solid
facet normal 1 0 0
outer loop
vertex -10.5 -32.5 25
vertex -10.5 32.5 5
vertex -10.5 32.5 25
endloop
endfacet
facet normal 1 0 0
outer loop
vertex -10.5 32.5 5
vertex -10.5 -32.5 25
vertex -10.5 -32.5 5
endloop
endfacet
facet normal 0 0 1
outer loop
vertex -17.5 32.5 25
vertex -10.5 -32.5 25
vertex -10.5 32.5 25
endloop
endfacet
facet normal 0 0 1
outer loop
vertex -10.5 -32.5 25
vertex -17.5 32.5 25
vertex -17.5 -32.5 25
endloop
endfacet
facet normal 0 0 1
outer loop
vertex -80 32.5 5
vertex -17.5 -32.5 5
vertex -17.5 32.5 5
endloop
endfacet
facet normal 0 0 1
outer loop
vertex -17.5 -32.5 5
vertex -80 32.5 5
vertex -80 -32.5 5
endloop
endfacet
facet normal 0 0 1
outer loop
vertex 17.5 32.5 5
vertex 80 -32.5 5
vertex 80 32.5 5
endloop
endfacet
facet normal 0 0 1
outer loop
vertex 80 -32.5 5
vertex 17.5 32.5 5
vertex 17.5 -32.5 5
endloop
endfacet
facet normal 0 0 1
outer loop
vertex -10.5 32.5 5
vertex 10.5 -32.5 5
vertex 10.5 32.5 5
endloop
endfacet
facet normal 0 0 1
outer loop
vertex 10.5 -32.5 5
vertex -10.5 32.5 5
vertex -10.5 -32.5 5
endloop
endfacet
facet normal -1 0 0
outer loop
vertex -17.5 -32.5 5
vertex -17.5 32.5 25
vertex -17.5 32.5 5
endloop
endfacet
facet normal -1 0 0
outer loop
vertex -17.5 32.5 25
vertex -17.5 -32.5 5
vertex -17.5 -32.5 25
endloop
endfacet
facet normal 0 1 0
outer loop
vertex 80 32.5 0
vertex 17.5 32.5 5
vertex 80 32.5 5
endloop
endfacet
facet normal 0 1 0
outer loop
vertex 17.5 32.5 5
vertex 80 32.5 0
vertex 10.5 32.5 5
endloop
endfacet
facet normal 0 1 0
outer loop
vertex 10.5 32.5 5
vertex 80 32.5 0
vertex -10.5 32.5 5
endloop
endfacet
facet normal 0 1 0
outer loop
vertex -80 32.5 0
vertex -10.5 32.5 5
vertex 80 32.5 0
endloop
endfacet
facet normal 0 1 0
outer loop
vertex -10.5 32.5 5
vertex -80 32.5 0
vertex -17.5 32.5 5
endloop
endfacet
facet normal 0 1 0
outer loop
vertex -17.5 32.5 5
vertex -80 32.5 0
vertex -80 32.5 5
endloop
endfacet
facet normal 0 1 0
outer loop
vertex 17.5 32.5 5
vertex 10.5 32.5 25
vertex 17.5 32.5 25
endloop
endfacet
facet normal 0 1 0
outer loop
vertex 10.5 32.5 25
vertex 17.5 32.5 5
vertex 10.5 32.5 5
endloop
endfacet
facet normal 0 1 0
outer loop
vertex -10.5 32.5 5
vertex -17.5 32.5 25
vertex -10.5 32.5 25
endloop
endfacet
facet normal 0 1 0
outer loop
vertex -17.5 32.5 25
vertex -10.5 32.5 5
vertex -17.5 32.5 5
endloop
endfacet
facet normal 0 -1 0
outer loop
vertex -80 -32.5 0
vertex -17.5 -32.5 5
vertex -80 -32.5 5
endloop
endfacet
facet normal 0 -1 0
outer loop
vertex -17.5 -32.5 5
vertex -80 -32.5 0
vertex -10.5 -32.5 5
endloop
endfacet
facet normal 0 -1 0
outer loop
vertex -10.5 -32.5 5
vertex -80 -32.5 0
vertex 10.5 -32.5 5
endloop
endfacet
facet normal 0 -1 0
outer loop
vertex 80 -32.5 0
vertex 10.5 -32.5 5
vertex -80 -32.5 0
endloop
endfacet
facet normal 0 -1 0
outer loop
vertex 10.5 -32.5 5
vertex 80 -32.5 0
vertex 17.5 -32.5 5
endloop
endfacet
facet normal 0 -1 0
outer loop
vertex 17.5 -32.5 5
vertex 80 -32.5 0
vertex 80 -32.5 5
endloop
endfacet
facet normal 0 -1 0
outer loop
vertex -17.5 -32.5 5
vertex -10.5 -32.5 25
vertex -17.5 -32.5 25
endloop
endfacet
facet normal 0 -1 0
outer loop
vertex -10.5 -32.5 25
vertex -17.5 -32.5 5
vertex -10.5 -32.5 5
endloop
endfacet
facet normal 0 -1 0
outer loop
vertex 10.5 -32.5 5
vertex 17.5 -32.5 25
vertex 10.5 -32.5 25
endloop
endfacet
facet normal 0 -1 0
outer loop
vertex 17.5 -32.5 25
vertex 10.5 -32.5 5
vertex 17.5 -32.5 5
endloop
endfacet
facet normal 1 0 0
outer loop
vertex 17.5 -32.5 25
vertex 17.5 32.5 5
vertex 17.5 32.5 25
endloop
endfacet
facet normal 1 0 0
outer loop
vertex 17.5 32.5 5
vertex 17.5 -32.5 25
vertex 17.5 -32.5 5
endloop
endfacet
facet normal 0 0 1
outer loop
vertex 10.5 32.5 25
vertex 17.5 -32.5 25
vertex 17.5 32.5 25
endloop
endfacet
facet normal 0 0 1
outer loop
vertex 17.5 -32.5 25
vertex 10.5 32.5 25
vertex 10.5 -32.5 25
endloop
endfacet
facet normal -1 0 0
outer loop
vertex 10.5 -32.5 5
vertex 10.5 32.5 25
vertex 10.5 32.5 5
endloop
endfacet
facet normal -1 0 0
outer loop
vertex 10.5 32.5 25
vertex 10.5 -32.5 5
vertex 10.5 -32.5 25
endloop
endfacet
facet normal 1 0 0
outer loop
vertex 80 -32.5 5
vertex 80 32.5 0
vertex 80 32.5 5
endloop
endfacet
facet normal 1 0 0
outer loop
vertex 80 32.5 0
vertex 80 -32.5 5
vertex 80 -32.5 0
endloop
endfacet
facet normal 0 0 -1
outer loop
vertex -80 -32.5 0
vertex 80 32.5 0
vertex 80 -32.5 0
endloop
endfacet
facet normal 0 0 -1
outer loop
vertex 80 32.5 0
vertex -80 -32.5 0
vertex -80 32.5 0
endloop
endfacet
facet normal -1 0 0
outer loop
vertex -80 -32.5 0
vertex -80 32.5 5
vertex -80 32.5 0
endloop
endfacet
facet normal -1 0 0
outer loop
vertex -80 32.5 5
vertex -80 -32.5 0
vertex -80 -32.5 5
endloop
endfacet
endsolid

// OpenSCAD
// Copyright: ChasinSpin, 2023
// License: MIT License

// Print 15% Fill No Support

full2020                        = 20;
clearance2020                   = 1;
batteryBaseDimensions           = [160, 65, 5];
flange2020Thickness             = 7;


batteryPlatform();


module batteryPlatform()
{
    translate( [0, 0, batteryBaseDimensions[2]/2] )
        cube(batteryBaseDimensions, center = true);
    
    translate( [0, 0, batteryBaseDimensions[2] + full2020/2] )
    {
        flangeHalfDistance = ((full2020 + clearance2020) + flange2020Thickness)/2;
        translate( [-flangeHalfDistance, 0, 0] )
            cube( [flange2020Thickness, batteryBaseDimensions[1], full2020], center=true);
        translate( [flangeHalfDistance, 0, 0] )
            cube( [flange2020Thickness, batteryBaseDimensions[1], full2020], center=true);
    }
}


manifoldCorrection              = 0.01;
$fn                             = 80;
